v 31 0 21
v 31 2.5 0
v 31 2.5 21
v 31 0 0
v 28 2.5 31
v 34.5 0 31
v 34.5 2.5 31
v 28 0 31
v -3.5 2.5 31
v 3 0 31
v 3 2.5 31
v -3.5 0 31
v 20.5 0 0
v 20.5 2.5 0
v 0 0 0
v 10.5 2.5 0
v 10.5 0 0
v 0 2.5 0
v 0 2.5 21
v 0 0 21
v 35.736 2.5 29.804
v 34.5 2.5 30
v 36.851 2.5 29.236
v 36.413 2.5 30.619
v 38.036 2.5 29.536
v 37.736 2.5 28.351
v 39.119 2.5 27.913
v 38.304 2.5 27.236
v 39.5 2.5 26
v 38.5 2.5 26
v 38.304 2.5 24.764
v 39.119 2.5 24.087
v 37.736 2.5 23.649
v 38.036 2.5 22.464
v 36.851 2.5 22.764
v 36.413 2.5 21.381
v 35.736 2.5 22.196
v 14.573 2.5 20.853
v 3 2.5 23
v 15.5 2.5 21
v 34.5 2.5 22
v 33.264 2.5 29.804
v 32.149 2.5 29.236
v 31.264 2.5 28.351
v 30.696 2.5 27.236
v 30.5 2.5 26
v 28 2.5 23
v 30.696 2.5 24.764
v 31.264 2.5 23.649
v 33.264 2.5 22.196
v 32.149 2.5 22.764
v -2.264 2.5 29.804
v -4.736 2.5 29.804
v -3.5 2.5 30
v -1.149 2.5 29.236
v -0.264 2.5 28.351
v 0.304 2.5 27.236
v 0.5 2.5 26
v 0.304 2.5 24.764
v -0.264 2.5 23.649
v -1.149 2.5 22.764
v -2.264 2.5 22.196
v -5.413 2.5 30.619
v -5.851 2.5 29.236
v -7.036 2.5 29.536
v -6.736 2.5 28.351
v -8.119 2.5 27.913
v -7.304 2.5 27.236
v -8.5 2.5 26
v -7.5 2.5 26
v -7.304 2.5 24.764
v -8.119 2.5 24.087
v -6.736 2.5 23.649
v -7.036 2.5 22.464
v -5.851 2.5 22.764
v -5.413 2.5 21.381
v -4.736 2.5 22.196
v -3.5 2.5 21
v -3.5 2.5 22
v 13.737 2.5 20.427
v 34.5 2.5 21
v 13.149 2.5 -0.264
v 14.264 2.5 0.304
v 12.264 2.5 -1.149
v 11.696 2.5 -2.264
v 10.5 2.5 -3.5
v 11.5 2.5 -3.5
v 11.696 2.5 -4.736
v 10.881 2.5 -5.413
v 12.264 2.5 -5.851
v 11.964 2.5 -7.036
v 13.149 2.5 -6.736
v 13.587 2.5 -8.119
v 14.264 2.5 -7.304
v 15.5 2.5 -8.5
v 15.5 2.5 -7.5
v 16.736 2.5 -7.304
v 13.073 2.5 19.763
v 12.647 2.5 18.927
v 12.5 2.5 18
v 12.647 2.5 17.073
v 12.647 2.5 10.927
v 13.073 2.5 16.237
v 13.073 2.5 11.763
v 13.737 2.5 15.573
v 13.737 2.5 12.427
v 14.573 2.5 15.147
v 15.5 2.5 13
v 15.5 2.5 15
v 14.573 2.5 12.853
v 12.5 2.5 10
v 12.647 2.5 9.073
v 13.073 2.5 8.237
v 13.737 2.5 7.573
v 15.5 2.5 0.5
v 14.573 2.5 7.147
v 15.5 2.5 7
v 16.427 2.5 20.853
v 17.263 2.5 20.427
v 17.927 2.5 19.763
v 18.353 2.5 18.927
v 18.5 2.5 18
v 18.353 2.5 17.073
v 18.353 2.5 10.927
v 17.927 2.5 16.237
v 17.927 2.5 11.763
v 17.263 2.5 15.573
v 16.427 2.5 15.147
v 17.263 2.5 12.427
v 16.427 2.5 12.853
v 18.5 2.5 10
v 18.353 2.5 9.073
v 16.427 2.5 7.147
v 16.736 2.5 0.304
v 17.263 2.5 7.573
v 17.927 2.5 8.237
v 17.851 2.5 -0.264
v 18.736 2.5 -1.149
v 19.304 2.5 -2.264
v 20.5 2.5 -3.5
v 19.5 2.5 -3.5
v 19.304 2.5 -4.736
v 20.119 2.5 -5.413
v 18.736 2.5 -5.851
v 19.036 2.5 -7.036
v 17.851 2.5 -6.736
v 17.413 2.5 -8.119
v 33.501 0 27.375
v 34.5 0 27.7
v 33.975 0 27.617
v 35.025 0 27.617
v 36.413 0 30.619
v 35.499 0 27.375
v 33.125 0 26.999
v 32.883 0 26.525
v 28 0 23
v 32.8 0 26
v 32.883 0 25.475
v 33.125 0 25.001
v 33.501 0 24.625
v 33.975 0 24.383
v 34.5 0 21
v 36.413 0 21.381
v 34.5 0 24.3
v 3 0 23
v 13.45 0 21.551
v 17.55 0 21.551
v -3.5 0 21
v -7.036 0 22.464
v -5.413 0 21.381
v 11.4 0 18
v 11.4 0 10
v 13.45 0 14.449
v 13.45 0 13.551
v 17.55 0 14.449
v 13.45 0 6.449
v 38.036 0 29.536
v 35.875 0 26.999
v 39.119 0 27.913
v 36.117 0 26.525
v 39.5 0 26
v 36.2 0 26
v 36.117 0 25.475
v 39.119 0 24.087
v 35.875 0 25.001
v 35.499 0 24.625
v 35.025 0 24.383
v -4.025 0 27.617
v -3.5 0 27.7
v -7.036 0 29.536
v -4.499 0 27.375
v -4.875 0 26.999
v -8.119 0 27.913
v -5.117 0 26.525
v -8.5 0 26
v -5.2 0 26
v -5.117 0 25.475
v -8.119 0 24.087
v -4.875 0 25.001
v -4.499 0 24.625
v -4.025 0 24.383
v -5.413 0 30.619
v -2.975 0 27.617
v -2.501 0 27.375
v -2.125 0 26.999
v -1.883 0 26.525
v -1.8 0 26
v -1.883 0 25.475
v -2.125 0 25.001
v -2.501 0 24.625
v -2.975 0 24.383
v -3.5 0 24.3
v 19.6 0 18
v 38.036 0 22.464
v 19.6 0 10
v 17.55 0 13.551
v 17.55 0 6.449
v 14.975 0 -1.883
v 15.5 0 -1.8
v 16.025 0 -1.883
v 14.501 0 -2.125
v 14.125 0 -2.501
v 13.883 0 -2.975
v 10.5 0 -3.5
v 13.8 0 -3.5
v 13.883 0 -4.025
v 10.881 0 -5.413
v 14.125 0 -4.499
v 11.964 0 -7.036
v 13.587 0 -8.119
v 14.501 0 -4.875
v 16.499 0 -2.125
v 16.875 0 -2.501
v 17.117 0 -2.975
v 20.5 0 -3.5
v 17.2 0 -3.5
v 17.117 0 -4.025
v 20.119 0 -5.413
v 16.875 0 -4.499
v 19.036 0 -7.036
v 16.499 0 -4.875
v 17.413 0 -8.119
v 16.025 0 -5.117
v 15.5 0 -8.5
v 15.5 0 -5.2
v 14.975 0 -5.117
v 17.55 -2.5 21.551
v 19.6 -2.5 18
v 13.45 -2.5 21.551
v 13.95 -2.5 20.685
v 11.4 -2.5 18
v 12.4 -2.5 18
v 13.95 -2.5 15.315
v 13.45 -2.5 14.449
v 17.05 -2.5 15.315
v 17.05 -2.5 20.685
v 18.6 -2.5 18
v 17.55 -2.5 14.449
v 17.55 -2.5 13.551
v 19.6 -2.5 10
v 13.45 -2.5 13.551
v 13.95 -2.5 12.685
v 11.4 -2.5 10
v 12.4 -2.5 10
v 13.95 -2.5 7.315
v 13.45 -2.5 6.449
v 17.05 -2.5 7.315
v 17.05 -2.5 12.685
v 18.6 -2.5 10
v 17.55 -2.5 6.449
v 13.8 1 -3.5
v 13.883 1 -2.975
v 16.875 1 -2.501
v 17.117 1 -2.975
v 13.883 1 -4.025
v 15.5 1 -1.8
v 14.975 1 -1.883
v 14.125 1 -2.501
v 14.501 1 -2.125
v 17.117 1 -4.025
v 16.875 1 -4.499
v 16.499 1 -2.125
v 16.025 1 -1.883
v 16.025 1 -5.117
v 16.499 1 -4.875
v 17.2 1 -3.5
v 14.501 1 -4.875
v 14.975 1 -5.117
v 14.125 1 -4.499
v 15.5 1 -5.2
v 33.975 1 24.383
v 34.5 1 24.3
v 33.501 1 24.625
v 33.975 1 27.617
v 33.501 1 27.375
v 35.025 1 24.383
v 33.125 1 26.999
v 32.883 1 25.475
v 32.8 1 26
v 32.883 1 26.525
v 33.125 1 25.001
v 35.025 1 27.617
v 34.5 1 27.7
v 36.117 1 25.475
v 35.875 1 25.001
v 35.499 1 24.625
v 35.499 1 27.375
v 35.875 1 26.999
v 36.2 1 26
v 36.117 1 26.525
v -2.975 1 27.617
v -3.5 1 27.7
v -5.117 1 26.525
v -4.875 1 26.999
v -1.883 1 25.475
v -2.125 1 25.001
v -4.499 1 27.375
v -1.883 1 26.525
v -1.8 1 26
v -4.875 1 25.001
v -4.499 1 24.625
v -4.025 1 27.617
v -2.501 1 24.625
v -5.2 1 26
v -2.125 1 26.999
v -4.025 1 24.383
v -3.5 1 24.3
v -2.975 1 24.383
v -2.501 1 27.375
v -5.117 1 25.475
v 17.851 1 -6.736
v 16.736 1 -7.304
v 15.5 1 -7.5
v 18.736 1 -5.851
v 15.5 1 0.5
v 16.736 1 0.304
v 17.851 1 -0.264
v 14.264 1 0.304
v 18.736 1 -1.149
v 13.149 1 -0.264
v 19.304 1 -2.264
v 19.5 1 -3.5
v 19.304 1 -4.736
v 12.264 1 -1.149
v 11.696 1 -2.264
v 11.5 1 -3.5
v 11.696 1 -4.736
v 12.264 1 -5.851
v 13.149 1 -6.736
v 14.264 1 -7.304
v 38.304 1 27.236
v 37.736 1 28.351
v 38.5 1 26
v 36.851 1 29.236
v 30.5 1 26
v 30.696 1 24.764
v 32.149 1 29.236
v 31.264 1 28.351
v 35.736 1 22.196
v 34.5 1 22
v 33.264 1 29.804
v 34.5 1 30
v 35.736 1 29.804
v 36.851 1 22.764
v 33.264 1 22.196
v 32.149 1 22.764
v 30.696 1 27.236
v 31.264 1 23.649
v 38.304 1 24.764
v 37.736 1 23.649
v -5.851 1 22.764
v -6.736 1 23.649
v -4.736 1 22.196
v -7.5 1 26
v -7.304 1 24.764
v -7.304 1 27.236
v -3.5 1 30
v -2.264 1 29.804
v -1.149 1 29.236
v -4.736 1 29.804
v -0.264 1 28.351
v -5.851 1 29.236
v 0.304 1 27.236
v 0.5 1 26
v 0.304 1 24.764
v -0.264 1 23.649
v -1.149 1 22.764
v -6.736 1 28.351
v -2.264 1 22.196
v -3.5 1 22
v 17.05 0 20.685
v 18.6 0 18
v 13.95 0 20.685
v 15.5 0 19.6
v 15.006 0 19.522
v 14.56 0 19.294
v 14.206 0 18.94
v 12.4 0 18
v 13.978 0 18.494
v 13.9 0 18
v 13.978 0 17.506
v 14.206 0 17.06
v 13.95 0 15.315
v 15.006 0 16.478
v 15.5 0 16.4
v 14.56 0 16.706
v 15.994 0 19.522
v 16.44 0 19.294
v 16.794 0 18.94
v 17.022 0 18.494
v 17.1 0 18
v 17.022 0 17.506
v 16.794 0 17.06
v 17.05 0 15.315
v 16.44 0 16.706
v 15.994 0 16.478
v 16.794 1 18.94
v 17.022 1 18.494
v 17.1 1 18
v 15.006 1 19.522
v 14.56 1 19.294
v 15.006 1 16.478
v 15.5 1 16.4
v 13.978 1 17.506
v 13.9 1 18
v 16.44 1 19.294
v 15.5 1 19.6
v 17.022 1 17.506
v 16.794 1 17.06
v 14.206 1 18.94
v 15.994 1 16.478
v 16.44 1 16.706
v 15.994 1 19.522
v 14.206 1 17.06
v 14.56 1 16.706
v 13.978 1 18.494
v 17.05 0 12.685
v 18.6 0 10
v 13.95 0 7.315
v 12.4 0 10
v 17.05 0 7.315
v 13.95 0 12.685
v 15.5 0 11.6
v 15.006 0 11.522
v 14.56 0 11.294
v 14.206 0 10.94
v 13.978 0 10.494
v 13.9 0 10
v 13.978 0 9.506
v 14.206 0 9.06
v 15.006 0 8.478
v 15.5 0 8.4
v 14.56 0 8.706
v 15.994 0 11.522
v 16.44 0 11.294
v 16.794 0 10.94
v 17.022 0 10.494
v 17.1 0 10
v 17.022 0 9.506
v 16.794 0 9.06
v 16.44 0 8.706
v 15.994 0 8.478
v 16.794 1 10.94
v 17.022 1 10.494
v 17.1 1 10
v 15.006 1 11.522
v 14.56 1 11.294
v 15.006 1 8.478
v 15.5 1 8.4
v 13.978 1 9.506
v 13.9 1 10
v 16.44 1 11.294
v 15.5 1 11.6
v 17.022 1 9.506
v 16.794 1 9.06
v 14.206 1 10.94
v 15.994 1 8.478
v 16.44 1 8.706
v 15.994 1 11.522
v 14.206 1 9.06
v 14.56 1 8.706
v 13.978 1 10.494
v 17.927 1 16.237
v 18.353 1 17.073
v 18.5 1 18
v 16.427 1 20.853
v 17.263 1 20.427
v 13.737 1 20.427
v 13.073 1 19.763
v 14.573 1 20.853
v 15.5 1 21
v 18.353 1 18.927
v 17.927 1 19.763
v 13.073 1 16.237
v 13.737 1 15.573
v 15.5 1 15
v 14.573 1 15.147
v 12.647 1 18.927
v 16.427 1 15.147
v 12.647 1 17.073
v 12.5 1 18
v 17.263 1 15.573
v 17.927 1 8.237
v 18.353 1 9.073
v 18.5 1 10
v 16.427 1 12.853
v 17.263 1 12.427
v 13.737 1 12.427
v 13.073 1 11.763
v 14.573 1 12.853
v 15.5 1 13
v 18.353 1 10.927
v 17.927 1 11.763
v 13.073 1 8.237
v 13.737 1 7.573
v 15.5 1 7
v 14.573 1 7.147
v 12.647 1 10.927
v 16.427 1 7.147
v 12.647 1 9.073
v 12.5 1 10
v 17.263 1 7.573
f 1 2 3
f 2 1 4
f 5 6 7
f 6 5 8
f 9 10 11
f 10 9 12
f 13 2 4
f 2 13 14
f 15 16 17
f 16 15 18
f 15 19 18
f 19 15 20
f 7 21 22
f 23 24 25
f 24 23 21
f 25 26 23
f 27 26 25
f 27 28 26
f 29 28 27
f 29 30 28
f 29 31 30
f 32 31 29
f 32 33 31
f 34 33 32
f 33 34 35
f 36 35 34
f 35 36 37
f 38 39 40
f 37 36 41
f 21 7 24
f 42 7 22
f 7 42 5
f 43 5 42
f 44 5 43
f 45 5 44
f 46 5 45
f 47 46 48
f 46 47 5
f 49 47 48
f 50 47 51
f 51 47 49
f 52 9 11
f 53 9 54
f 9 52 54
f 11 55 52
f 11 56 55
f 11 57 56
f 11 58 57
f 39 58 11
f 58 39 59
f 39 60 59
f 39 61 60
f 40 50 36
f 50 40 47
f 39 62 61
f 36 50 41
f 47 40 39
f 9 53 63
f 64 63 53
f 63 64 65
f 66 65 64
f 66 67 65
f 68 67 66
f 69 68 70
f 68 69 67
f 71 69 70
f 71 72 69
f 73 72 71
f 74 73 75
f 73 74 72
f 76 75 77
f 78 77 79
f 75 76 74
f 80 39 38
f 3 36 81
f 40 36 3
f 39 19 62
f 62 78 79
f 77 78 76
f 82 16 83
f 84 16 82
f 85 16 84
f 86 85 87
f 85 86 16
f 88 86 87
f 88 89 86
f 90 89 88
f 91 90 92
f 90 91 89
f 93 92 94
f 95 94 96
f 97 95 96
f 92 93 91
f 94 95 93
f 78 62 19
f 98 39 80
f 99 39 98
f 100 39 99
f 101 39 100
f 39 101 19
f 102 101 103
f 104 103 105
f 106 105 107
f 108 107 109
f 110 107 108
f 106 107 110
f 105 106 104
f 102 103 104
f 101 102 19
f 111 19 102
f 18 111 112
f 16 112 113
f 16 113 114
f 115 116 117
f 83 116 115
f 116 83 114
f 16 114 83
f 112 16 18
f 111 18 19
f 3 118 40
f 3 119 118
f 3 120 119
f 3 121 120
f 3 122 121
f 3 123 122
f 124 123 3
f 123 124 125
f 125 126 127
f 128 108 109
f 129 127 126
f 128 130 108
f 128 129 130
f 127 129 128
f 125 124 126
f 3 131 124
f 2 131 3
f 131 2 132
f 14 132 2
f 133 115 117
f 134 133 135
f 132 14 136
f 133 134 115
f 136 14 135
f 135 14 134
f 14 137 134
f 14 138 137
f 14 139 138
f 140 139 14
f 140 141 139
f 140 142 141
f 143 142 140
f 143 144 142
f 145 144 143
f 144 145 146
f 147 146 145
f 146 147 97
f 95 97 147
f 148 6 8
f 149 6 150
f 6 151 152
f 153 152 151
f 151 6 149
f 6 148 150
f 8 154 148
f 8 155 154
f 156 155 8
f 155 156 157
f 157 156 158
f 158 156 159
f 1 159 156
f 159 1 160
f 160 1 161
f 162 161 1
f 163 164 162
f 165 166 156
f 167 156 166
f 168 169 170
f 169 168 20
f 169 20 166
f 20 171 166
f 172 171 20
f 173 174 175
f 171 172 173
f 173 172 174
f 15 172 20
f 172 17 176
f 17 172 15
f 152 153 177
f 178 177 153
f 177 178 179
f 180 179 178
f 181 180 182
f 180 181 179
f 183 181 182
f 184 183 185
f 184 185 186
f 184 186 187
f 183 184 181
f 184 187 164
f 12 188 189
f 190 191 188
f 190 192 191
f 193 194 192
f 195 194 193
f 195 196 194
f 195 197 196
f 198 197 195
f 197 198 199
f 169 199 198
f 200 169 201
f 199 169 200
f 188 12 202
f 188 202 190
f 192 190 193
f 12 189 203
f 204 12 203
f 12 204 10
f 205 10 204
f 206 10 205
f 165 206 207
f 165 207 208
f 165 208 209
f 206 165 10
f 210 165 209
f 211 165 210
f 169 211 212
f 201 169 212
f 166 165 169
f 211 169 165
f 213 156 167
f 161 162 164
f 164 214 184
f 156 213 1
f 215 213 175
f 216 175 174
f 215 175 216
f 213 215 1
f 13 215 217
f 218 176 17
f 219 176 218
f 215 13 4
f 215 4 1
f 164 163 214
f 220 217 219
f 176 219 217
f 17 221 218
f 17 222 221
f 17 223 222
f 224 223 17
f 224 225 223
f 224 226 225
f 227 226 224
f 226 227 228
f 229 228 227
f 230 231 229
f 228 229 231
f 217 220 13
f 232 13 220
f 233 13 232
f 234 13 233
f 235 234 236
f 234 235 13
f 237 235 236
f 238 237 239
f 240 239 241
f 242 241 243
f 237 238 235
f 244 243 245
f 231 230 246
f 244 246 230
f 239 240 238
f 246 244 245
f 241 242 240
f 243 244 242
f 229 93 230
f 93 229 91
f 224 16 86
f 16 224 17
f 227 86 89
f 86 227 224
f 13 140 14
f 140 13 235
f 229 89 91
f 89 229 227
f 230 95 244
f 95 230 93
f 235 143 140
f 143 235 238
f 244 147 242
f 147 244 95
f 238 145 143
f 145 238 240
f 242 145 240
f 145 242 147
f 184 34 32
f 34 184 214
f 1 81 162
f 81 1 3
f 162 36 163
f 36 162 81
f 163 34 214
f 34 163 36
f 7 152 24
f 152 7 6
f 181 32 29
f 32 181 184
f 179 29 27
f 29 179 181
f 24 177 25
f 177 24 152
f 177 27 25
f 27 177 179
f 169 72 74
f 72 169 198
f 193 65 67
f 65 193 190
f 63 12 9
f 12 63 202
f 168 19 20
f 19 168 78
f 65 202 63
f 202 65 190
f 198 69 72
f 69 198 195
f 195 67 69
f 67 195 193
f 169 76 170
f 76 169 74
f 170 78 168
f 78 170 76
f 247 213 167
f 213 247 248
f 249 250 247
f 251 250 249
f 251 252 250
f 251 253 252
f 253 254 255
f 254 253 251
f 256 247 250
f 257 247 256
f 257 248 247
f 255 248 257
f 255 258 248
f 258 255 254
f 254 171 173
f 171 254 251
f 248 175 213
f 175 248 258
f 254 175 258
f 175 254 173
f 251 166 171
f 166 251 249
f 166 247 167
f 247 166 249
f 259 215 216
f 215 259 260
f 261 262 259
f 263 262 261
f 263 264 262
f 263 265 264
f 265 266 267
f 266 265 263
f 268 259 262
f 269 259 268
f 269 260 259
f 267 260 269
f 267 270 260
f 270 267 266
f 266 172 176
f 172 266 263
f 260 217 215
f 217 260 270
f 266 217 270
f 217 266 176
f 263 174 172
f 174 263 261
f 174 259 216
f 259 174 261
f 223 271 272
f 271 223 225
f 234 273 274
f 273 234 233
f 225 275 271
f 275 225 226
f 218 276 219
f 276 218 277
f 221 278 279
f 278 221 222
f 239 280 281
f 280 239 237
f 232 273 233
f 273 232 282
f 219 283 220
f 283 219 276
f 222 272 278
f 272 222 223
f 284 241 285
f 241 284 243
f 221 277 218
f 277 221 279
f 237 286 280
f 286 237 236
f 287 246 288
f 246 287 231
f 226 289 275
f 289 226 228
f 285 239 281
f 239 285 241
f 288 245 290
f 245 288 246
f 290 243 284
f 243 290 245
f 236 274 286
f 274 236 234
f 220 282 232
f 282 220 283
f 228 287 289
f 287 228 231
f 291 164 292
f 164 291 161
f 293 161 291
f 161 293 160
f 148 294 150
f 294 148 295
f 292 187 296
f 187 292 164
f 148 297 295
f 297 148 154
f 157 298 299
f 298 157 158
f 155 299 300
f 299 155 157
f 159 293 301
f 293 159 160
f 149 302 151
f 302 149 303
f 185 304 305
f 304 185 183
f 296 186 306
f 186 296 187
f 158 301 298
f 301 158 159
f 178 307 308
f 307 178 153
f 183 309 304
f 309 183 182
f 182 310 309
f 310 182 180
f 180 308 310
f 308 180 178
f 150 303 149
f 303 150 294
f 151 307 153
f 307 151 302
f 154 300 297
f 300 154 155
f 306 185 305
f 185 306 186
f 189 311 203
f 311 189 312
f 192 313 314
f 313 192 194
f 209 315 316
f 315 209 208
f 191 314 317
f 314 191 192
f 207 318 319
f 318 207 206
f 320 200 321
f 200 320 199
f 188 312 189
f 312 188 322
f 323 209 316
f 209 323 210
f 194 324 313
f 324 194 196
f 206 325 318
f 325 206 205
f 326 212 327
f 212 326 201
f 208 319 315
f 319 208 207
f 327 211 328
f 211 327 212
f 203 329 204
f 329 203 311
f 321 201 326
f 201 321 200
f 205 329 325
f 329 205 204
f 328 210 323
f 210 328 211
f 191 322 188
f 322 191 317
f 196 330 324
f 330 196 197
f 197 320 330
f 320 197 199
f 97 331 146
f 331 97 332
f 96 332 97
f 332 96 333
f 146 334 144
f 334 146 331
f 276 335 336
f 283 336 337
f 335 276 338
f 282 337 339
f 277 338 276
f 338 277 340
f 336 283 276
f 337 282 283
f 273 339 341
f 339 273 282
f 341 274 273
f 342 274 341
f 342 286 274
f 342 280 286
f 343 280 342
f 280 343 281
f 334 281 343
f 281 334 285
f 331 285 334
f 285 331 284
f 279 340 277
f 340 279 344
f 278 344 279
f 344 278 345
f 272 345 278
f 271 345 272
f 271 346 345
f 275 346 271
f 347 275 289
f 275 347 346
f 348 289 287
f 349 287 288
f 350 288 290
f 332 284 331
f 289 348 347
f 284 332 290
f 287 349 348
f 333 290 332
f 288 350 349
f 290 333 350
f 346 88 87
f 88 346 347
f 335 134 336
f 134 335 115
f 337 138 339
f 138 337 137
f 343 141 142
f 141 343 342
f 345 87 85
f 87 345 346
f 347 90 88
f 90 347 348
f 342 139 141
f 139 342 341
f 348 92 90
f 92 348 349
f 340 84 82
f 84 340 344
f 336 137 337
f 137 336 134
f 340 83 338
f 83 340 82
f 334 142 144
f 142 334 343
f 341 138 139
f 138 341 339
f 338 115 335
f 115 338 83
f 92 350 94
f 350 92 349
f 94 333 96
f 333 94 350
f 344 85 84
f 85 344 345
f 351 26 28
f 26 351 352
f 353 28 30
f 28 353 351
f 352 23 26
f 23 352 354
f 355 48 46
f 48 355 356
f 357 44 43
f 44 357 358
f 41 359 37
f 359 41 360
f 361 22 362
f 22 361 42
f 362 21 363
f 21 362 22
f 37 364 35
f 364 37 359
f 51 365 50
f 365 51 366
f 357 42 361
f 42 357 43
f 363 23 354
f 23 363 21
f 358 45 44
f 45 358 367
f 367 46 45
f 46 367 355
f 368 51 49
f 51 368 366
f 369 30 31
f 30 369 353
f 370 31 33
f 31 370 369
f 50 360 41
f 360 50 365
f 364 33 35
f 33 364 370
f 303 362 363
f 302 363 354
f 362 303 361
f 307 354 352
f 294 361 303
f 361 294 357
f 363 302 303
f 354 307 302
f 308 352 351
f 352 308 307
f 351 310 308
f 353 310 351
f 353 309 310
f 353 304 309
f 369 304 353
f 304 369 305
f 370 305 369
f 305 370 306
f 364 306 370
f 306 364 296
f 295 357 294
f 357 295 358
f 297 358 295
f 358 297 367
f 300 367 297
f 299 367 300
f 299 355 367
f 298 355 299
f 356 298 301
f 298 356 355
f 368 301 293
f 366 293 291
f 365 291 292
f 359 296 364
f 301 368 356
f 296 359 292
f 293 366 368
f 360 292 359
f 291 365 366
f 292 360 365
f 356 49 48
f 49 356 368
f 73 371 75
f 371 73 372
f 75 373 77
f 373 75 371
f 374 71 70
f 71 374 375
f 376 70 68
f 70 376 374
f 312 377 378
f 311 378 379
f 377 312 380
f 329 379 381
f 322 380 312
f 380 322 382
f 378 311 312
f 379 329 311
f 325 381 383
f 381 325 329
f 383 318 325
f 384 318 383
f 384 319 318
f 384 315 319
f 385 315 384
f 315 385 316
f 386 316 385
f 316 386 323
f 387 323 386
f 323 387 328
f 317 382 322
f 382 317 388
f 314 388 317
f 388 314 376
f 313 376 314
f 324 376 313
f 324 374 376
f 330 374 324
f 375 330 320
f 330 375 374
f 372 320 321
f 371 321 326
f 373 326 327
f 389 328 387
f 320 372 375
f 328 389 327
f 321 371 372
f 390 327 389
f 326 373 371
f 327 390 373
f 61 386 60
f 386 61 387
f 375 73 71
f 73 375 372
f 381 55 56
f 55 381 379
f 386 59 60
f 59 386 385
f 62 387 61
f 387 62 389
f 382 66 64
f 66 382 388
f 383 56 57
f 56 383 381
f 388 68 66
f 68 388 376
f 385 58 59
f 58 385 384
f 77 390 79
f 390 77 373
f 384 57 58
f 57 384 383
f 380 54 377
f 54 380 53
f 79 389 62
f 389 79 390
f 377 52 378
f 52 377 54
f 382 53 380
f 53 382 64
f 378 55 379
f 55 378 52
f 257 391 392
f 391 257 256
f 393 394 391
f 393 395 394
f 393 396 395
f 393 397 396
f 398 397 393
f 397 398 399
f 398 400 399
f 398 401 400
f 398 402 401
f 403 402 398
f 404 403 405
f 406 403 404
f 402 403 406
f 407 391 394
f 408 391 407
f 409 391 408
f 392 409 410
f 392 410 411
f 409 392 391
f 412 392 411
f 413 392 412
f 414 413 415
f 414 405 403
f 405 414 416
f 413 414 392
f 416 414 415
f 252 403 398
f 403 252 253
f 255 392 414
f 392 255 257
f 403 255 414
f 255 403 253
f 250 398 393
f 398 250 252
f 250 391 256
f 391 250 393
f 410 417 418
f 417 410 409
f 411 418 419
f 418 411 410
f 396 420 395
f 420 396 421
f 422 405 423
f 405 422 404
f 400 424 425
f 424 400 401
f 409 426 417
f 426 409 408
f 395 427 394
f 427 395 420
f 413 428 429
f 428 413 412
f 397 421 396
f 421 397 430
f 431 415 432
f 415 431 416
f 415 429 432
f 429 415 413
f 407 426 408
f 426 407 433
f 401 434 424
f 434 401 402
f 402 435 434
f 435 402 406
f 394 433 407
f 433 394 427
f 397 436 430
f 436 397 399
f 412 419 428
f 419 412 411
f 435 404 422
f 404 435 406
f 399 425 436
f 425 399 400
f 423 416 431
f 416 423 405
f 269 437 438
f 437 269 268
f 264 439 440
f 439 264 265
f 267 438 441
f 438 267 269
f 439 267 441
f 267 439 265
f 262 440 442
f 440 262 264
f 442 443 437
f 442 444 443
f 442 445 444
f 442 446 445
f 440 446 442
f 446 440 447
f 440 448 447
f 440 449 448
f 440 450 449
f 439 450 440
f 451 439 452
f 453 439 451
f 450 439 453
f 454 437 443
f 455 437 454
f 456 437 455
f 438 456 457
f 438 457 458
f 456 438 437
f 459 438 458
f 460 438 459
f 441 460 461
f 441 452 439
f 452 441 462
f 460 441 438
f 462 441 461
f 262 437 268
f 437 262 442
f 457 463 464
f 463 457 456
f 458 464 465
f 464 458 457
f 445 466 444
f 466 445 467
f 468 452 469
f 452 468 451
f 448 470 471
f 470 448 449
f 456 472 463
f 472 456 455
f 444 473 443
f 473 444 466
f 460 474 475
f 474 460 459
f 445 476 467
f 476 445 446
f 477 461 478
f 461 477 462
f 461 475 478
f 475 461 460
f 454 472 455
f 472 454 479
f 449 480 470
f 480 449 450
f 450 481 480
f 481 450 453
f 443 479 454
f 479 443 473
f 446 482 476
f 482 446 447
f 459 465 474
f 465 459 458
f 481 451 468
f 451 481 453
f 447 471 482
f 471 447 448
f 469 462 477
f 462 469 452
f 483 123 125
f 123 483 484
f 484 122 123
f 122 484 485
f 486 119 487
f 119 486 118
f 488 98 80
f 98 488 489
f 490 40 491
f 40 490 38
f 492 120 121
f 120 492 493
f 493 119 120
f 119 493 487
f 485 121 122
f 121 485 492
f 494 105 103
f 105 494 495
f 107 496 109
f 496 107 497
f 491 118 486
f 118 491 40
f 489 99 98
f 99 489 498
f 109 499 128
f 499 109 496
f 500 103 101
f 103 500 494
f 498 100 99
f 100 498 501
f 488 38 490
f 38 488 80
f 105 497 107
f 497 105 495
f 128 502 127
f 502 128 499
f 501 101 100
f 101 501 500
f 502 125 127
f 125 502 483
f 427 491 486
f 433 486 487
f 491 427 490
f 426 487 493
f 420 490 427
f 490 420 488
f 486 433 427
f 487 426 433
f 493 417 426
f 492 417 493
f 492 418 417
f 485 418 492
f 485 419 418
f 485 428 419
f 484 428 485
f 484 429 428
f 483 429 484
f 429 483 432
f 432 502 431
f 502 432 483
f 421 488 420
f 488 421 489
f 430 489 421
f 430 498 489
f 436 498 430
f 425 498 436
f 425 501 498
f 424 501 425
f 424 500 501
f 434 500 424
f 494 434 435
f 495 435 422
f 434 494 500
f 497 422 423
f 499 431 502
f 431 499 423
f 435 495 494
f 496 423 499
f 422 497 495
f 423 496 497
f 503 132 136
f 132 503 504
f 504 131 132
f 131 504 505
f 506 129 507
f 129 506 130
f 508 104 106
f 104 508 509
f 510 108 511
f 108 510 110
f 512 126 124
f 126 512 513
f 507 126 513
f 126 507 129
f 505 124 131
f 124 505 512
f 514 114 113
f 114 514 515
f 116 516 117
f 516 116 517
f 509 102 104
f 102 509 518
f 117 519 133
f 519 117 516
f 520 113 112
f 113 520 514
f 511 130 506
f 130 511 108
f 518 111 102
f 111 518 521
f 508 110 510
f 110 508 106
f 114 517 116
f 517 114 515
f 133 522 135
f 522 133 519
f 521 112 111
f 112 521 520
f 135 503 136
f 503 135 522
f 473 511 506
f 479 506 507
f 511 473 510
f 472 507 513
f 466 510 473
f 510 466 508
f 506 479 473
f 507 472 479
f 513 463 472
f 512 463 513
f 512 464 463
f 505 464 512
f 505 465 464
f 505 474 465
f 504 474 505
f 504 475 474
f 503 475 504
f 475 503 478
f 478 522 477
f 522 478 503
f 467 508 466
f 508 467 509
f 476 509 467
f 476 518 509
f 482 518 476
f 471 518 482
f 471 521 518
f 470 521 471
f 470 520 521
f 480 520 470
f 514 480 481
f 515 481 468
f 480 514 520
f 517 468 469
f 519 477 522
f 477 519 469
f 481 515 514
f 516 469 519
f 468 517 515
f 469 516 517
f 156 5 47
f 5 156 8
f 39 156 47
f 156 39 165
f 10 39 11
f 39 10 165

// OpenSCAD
difference() {
    union() {
        cube([28+3,2.5,28+3]);
        translate([(28+3)/2,0,1.5]) rotate([-90,0,0]) hull() {
            translate([0,5,0]) cylinder(2.5,5,5);
            translate([-5,0,0]) cube([10,1,2.5]);
        }
        translate([28+1.5,0,28+3-5]) rotate([-90,-90,0]) hull() {
            translate([0,5,0]) cylinder(2.5,5,5);
            translate([-5,0,0]) cube([10,1,2.5]);
        }
        translate([1.5,0,28+3-5]) rotate([-90,90,0]) hull() {
            translate([0,5,0]) cylinder(2.5,5,5);
            translate([-5,0,0]) cube([10,1,2.5]);
        }
        
        //door_t=41+2.5+1;
        //translate([0,0,31-0.8]) cube([31,door_t,0.8]);
        //translate([0,41+2.5,31-20]) cube([31,1,20]);
        
        translate([31/2,0.5,18]) rotate([90,0,0]) cylinder(3, 8.2/2, 8.2/2,$fn=6);
        translate([31/2,0.5,10]) rotate([90,0,0]) cylinder(3, 8.2/2, 8.2/2,$fn=6);
        
    }
    
    translate([(28+3)/2,-1,1.5]) rotate([-90,0,0]) hull() {
        translate([0,5,0]) cylinder(5.5,1.7,1.7,$fn=20);
    }
    translate([28+1.5,-1,28+3-5]) rotate([-90,-90,0]) hull() {
        translate([0,5,0]) cylinder(5.5,1.7,1.7,$fn=20);
    }
    translate([1.5,-1,28+3-5]) rotate([-90,90,0]) hull() {
        translate([0,5,0]) cylinder(5.5,1.7,1.7,$fn=20);
    }
    
    translate([(28+3)/2,1,1.5]) rotate([-90,0,0]) hull() {
        translate([0,5,0]) cylinder(5.5,4,4,$fn=20);
    }
    translate([28+1.5,1,28+3-5]) rotate([-90,-90,0]) hull() {
        translate([0,5,0]) cylinder(5.5,4,4,$fn=20);
    }
    translate([1.5,1,28+3-5]) rotate([-90,90,0]) hull() {
        translate([0,5,0]) cylinder(5.5,4,4,$fn=20);
    }
    translate([31/2,0,18]) rotate([90,0,0]) cylinder(3, 6.2/2, 6.2/2,$fn=6);
    #translate([31/2,3,18]) rotate([90,0,0]) cylinder(10, 3.2/2, 3.2/2,$fn=20);

    translate([31/2,0,10]) rotate([90,0,0]) cylinder(3, 6.2/2, 6.2/2,$fn=6);
    #translate([31/2,3,10]) rotate([90,0,0]) cylinder(10, 3.2/2, 3.2/2,$fn=20);

    translate([31/2,1,18]) rotate([-90,0,0]) cylinder(10, 6/2, 6/2,$fn=20);
    #translate([31/2,1,10]) rotate([-90,0,0]) cylinder(10, 6/2, 6/2,$fn=20);
    
    // d=(31-16)/2;
    // mags(d);
    // mags(d+8);
    // mags(d+16);
    
    #translate([(28+3-25)/2,-1,25-2]) cube([25,100,10]);
}



module mags(x) {
    mag(x,8);
    mag(x,8+8);
    // mag(x,8+8+8);
    // mag(x,5+5+5+5);
    // mag(x,5+5+5+5+5);
}

module mag(x,z) {
    translate([x,2,z-3]) rotate([90,0,0]) cylinder(2.5,6.2/2,6.2/2,$fn=20);
}
